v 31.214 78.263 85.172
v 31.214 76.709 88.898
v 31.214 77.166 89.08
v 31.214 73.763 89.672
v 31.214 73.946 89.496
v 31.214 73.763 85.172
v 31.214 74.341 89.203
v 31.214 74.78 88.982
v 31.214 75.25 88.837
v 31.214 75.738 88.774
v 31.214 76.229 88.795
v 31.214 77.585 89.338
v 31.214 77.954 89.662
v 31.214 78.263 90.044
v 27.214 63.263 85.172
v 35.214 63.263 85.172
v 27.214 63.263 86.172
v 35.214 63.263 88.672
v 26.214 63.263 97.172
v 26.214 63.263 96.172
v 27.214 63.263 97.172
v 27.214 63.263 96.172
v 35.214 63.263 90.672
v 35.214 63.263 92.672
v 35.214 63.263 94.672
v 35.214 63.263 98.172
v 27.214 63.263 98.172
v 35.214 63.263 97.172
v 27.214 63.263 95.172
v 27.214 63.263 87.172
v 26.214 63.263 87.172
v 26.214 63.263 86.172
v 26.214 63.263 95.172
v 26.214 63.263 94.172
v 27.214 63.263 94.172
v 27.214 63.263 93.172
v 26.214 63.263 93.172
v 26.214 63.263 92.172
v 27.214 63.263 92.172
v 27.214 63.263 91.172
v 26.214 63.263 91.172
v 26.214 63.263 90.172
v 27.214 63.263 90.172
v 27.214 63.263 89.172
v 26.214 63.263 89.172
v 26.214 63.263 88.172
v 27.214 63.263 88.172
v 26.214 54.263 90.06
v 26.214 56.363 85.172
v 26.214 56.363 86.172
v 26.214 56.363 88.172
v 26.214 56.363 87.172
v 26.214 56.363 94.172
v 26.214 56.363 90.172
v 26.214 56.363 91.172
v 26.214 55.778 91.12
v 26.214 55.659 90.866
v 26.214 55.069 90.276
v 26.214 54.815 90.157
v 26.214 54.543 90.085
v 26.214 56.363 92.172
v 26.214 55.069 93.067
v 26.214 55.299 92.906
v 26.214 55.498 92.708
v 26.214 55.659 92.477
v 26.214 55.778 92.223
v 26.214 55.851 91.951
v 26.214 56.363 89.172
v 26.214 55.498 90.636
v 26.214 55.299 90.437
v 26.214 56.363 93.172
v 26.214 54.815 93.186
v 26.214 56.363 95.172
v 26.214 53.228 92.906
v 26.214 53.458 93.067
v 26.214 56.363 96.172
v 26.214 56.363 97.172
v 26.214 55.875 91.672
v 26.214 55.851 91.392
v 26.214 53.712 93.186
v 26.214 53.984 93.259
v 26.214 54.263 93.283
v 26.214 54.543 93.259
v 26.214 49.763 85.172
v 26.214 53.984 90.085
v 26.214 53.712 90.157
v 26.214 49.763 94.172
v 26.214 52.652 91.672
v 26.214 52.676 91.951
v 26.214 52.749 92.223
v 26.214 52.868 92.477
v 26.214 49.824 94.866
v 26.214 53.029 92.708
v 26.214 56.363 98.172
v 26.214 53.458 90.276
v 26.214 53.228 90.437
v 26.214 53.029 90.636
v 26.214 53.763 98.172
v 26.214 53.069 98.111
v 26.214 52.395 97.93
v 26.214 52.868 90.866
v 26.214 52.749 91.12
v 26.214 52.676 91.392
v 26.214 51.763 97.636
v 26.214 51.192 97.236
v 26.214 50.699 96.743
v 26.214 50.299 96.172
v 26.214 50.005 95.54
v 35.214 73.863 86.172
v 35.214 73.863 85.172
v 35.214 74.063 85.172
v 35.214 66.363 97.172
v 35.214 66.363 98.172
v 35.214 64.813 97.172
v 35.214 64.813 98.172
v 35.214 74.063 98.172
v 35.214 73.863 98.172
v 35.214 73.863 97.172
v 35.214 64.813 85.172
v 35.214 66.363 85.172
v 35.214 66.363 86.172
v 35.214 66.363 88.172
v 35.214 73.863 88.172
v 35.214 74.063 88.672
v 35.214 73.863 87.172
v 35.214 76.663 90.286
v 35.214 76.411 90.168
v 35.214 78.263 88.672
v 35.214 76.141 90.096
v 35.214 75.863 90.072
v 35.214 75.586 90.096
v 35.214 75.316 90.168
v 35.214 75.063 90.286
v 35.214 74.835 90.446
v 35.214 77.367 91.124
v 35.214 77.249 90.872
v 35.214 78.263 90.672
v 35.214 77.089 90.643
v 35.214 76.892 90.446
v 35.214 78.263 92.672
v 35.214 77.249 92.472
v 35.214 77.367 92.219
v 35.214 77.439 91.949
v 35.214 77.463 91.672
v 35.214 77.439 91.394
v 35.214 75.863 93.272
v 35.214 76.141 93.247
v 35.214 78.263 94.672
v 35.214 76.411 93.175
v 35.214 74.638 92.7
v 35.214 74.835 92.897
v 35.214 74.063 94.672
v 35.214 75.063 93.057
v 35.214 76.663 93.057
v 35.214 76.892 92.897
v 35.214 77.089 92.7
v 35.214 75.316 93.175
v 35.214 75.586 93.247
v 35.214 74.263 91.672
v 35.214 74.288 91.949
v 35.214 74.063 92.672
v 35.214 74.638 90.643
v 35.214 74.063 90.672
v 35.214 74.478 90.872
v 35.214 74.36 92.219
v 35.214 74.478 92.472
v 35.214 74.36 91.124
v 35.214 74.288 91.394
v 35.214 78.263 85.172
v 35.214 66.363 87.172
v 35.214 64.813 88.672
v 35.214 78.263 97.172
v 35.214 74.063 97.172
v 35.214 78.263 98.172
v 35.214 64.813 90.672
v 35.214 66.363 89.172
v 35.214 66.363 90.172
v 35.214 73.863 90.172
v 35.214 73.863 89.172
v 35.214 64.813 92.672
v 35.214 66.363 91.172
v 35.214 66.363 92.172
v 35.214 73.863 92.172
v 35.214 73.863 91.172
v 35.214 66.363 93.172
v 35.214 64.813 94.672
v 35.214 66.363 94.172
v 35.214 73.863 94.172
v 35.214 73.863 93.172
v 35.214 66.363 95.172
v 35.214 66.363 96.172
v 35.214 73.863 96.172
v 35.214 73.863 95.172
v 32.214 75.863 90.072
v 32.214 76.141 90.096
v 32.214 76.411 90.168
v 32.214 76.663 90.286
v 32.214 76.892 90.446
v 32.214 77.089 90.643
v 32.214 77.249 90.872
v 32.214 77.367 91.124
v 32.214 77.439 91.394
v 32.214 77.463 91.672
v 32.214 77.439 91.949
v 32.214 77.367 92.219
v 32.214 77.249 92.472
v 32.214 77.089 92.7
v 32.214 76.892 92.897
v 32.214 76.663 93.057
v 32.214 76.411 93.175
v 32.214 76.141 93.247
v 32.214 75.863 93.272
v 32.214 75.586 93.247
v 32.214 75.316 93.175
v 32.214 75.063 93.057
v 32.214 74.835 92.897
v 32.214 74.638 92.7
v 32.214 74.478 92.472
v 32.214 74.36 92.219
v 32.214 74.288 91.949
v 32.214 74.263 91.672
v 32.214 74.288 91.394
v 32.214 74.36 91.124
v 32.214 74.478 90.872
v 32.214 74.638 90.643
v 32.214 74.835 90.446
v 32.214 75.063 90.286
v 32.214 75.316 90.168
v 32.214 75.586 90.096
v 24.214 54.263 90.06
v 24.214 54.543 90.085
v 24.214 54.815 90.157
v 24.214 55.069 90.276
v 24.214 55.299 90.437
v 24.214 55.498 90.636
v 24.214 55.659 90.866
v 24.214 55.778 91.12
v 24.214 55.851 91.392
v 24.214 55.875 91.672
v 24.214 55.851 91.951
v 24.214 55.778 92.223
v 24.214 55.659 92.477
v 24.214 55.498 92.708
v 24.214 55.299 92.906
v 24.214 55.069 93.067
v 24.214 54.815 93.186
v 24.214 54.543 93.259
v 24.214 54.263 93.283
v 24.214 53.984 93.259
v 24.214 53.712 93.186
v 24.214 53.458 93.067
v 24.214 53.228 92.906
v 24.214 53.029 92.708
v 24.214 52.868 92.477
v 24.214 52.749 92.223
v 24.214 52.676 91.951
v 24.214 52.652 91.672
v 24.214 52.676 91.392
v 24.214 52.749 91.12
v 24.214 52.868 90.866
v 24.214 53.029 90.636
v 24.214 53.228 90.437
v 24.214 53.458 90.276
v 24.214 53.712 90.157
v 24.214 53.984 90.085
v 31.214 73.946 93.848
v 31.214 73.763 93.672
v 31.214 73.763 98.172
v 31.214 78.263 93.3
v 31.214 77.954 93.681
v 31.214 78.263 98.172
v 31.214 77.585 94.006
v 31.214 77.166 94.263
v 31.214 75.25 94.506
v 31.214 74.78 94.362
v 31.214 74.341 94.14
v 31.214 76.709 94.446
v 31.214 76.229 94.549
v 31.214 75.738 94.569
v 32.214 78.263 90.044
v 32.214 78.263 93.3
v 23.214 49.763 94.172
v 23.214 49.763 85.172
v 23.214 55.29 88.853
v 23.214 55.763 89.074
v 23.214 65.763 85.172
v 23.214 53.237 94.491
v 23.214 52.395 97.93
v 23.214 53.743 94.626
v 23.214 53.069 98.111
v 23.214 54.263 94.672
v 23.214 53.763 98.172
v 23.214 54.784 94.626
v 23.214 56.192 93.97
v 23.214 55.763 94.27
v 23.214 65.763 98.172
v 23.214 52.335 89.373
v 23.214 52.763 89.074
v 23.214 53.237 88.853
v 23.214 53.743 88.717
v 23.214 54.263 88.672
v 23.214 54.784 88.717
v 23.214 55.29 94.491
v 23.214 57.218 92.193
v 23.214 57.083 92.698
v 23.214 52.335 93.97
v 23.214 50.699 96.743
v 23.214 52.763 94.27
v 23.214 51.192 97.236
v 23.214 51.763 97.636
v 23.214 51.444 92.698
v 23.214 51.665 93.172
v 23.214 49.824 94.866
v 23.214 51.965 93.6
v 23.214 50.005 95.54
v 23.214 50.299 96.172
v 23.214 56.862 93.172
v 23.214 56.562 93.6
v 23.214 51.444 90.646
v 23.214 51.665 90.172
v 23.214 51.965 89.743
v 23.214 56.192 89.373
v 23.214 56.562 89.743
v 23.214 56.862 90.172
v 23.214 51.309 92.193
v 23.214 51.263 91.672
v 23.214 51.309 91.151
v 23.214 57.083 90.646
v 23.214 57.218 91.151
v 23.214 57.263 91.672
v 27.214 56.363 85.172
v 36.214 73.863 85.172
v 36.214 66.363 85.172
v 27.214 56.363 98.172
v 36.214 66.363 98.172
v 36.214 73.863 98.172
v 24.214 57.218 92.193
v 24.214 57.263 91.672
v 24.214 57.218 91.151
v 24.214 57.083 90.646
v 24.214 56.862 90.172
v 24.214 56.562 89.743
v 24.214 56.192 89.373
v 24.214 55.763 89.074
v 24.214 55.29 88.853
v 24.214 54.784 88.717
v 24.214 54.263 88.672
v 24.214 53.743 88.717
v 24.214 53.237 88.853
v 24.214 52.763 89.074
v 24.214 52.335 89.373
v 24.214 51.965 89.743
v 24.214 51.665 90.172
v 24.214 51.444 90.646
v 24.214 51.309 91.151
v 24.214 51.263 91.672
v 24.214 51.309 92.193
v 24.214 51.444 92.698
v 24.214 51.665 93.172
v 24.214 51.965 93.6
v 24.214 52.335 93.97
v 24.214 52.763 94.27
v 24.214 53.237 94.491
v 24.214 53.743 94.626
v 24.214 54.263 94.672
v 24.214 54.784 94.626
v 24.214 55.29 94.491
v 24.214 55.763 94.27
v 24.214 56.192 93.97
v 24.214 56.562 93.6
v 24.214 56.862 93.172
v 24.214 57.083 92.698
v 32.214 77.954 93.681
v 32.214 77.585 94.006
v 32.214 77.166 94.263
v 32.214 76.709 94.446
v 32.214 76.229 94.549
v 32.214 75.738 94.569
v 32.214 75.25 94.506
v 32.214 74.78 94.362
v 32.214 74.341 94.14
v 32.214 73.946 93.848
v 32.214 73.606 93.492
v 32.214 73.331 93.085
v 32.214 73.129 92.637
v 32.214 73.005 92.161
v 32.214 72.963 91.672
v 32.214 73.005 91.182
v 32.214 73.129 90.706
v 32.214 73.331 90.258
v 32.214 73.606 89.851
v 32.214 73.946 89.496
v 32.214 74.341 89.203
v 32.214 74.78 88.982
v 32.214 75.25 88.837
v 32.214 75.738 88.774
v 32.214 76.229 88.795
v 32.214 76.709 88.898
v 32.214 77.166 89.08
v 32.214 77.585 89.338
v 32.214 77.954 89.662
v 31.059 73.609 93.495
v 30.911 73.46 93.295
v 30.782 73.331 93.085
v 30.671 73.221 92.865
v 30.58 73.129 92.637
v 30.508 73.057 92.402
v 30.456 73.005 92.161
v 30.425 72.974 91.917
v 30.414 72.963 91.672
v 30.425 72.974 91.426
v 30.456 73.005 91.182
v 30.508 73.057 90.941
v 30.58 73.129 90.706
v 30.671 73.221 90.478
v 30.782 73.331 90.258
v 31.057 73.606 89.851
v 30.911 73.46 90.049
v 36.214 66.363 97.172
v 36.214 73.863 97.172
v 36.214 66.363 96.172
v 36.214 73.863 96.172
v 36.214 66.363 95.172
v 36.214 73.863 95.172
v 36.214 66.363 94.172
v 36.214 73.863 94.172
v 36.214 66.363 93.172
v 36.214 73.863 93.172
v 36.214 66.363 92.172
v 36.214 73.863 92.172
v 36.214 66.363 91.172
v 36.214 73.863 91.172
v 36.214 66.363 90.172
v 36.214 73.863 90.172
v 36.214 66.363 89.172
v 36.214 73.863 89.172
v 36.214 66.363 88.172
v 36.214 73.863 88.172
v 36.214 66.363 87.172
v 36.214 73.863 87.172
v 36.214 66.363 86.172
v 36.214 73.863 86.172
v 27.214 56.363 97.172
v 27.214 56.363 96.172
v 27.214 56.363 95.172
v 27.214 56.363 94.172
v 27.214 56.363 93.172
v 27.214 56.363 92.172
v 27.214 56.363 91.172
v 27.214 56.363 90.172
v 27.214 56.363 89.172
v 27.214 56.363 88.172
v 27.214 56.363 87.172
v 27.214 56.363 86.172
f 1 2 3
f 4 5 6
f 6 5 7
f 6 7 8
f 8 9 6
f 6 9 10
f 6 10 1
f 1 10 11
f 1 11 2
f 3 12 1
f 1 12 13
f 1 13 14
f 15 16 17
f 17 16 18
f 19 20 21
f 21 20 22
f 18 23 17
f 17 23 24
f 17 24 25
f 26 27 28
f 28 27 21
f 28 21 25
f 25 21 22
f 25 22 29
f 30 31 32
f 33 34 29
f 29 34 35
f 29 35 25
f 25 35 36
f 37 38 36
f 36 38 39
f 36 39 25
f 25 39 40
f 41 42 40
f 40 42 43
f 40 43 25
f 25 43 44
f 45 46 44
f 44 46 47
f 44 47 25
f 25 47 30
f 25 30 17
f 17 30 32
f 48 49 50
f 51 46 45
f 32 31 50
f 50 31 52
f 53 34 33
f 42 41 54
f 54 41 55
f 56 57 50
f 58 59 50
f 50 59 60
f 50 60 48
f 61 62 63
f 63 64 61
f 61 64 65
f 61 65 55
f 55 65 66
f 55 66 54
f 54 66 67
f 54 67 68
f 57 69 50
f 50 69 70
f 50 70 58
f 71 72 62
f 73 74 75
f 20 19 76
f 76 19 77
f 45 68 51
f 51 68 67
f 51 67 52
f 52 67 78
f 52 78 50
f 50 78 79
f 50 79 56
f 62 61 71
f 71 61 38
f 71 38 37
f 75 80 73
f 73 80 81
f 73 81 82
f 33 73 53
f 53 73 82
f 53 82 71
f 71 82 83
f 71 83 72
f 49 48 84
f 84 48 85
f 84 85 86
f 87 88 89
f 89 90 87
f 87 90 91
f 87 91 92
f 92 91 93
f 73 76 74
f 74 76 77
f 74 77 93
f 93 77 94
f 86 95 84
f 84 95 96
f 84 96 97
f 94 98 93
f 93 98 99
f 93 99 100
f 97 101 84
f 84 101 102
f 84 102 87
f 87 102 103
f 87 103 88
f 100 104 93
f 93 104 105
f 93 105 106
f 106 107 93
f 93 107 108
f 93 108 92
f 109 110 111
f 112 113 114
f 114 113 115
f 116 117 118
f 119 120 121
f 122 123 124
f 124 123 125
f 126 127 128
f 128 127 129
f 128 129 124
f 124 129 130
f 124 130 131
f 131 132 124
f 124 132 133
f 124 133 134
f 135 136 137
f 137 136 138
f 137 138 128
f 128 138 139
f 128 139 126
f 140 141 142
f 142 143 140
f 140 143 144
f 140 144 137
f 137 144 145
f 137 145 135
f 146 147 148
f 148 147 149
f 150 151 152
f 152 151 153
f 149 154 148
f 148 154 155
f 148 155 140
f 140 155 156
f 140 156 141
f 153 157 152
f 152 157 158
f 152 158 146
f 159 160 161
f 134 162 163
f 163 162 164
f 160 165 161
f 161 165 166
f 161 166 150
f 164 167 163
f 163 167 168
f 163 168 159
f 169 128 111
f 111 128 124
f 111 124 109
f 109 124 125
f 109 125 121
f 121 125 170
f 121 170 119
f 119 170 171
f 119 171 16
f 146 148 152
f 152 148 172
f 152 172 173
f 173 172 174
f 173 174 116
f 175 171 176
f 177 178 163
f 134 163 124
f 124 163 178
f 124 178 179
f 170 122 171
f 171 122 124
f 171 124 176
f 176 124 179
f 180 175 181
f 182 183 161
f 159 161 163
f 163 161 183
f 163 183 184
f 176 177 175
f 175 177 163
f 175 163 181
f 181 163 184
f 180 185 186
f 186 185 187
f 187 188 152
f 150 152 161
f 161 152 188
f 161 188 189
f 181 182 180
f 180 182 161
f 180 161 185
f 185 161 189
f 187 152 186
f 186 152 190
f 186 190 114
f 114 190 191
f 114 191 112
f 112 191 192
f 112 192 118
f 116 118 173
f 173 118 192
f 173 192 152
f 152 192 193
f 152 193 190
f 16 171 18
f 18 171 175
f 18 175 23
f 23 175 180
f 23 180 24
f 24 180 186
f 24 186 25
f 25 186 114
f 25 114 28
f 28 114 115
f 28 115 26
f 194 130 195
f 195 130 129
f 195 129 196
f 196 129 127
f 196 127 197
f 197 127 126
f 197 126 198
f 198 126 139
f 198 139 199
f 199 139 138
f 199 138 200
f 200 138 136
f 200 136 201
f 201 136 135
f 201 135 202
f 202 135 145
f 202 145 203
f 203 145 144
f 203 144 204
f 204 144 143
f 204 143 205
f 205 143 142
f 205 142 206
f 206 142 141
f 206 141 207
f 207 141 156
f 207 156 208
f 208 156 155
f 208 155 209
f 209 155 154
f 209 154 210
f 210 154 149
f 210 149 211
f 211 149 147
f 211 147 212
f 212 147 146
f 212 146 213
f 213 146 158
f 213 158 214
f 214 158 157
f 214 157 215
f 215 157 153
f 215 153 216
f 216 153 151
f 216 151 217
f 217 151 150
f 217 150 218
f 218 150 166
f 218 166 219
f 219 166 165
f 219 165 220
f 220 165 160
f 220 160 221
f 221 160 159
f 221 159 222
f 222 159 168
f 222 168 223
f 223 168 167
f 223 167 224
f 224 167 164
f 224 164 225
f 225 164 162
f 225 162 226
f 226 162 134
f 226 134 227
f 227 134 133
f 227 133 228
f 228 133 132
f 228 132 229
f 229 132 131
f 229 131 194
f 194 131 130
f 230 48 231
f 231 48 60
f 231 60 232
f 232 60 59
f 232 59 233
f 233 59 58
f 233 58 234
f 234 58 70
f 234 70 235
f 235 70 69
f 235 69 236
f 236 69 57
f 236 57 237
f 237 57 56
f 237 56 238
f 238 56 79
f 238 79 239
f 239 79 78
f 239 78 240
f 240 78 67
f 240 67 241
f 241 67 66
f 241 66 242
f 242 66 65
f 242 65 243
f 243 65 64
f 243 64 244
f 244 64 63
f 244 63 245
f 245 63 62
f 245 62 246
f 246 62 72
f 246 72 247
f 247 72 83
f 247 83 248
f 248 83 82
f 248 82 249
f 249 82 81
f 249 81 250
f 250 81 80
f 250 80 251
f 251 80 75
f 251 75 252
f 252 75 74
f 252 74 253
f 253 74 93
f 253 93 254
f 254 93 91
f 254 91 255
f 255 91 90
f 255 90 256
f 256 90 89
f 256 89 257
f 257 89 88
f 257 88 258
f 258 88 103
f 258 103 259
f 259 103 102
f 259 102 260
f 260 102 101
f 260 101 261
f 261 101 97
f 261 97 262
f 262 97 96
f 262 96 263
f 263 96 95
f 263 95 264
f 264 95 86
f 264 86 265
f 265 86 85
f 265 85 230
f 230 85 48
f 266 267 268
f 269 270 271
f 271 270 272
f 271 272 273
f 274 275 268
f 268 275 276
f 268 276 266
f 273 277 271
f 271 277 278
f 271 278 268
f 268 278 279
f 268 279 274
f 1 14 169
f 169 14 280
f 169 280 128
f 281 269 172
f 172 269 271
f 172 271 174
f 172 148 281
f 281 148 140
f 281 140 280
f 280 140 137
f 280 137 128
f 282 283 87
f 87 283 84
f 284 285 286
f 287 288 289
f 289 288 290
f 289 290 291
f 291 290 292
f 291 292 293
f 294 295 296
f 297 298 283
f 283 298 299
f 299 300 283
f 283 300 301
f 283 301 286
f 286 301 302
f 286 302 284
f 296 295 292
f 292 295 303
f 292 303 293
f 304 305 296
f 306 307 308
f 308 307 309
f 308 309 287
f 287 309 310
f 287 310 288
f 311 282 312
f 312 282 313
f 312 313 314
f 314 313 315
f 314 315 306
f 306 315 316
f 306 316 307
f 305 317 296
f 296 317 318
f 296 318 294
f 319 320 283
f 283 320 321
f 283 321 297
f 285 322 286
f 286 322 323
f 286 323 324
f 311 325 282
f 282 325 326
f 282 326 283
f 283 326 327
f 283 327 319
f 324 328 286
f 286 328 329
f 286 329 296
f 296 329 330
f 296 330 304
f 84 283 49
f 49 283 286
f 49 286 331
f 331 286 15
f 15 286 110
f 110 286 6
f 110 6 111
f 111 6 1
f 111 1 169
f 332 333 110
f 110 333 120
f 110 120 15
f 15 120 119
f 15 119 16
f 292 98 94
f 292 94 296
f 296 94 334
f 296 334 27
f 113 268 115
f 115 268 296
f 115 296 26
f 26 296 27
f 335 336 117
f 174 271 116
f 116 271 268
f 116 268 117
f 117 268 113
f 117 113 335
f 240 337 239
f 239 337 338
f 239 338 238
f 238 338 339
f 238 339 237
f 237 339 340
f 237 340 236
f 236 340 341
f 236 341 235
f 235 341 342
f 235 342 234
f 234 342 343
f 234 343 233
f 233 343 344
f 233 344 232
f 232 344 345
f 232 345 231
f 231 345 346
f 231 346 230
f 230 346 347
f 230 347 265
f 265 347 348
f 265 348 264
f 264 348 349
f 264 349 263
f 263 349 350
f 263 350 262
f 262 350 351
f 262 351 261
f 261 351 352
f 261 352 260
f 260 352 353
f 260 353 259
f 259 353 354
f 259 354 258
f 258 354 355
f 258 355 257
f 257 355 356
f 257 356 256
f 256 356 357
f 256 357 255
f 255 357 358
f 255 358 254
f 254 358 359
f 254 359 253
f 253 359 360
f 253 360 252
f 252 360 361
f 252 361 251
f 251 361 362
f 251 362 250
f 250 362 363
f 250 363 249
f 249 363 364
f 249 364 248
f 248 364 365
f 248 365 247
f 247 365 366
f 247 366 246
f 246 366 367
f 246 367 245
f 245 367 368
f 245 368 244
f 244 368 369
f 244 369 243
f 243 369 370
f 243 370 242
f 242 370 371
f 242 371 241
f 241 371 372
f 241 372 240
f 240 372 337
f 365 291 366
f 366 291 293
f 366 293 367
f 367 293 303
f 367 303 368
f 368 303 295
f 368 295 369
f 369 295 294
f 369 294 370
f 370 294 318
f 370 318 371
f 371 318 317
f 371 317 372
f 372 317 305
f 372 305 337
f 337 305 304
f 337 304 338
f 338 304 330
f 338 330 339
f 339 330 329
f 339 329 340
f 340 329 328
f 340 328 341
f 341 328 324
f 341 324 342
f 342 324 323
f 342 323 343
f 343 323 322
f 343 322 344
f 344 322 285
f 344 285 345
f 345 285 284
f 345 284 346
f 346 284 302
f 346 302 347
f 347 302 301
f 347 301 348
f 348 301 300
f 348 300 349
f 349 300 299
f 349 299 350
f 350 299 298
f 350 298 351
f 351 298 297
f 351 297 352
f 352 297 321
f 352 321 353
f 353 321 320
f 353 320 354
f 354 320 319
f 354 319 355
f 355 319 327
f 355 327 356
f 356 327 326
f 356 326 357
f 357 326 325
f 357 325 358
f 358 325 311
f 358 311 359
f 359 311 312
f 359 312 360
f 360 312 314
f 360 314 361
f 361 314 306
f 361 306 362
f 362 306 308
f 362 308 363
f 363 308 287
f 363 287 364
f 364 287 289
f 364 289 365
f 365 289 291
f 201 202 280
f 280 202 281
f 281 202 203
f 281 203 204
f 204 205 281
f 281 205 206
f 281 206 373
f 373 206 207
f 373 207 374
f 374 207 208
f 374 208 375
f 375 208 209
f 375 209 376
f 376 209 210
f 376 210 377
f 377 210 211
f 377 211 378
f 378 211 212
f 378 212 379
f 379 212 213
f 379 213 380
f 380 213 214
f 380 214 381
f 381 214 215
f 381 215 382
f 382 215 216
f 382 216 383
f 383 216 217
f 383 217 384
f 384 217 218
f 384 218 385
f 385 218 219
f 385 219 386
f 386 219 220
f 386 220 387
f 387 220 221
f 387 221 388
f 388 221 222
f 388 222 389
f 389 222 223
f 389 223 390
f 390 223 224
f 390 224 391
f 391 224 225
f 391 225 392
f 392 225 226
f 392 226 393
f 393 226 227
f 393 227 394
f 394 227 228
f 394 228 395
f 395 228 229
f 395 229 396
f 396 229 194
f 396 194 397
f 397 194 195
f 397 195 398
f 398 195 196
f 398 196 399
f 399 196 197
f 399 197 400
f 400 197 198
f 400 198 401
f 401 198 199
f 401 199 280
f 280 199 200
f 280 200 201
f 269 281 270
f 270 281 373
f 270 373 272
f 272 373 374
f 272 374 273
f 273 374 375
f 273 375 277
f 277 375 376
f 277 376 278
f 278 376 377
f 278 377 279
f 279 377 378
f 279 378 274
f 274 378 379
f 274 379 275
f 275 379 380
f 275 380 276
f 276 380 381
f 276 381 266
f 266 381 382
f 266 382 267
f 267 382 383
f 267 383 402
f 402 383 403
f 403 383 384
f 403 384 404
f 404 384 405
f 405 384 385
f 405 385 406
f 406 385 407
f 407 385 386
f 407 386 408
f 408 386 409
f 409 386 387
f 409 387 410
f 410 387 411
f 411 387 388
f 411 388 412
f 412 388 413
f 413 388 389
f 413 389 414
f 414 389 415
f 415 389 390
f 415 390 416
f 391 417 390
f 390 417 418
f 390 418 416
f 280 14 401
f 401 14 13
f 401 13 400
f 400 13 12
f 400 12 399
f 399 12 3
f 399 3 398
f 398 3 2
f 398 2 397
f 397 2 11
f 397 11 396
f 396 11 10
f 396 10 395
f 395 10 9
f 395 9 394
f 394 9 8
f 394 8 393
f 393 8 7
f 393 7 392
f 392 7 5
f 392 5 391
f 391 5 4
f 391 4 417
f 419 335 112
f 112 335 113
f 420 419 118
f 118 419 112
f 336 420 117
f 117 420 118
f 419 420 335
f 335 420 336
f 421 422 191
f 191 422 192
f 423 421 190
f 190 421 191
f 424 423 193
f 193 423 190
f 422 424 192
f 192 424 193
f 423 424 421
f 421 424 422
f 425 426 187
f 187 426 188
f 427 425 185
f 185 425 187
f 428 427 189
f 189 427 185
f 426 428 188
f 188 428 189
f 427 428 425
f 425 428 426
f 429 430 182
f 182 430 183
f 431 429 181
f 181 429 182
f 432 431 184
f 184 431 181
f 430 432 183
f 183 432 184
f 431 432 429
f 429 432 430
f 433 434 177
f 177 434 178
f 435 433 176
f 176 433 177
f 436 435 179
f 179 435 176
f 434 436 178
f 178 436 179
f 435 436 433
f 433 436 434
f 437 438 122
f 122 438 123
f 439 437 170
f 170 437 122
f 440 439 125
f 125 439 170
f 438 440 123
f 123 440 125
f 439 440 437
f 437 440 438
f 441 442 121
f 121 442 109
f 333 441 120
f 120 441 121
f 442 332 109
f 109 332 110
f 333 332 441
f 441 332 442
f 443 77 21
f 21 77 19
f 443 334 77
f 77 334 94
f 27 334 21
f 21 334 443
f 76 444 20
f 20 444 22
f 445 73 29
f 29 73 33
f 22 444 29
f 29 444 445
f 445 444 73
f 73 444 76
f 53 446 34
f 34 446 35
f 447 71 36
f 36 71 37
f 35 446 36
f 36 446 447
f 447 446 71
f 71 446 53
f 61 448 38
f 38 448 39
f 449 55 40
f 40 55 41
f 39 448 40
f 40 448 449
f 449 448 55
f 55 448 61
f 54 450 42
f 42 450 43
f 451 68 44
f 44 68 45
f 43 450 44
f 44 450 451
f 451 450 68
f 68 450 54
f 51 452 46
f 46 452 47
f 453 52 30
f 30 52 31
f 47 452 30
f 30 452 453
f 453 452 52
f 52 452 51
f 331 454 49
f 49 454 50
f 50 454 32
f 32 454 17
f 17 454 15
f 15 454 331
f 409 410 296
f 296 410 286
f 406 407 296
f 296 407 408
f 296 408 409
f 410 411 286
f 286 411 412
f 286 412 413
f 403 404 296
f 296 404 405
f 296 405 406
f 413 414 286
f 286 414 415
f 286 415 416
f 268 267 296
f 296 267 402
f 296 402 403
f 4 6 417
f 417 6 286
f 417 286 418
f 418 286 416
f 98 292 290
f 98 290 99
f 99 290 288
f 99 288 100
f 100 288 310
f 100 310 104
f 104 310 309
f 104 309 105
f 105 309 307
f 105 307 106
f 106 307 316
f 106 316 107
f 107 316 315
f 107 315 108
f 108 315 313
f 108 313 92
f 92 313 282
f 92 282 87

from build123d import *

# Parameters (mm, degrees)
BOSS_EXTRUDE1_DEPTH = 13
SKETCH2_R           = 1.6
SKETCH2_R_2         = 1.611537585
CUT_EXTRUDE1_DEPTH  = 20
SKETCH3_R           = 3
CUT_EXTRUDE2_DEPTH  = 1
SKETCH4_R           = 2.9
CUT_EXTRUDE3_DEPTH  = 1
SKETCH5_W           = 1
SKETCH5_H           = 7.5
BOSS_EXTRUDE2_DEPTH = 1
LPATTERN1_COUNT     = 7
LPATTERN1_PITCH     = 2
SKETCH6_W           = 1
SKETCH6_H           = 7.5
BOSS_EXTRUDE3_DEPTH = 1
LPATTERN2_COUNT     = 7
LPATTERN2_PITCH     = 2
CHAMFER1_SIZE       = 10
FILLET1_R           = 4


with BuildPart() as part:
    # Sketch1 → Boss-Extrude1 (new body)
    with BuildSketch(Plane.XY.offset(98.171636097)):
        Polygon((31.214370899, 78.263460463), (35.214370899, 78.263460463), (35.214370899, 66.863460463), (35.214370899, 63.263460463), (26.214370899, 63.263460463), (26.214370899, 49.763460463), (23.214370899, 49.763460463), (23.214370899, 63.263460463), (23.214370899, 63.763460463), (31.214370899, 63.763460463), align=None)
    extrude(amount=-BOSS_EXTRUDE1_DEPTH)

    # Sketch2 → Cut-Extrude1 (cut)
    with BuildSketch(Plane(origin=(35.214370899, 0, 0), x_dir=(0, 0, -1), z_dir=(1, 0, 0))):
        with Locations((-91.671636097, 75.863460463)):
            Circle(SKETCH2_R)
        with Locations((-91.671636097, 54.263460463)):
            Circle(SKETCH2_R_2)
    extrude(amount=-CUT_EXTRUDE1_DEPTH, mode=Mode.SUBTRACT)

    # Sketch3 → Cut-Extrude2 (cut)
    with BuildSketch(Plane.ZY.offset(-23.214370899)):
        with Locations((91.671636097, 54.263460463)):
            Circle(SKETCH3_R)
    extrude(amount=-CUT_EXTRUDE2_DEPTH, mode=Mode.SUBTRACT)

    # Sketch4 → Cut-Extrude3 (cut)
    with BuildSketch(Plane.ZY.offset(-31.214370899)):
        with Locations((91.671636097, 75.863460463)):
            Circle(SKETCH4_R)
    extrude(amount=-CUT_EXTRUDE3_DEPTH, mode=Mode.SUBTRACT)

    # Sketch5 → Boss-Extrude2 (add)
    with BuildSketch(Plane(origin=(35.214370899, 0, 0), x_dir=(0, 0, -1), z_dir=(1, 0, 0))):
        with Locations((-97.671636097, 70.113460463)):
            Rectangle(SKETCH5_W, SKETCH5_H)
    boss_extrude2 = extrude(amount=BOSS_EXTRUDE2_DEPTH)

    # LPattern1: Boss-Extrude2 ×7
    with Locations(*[(0, 0, -i * LPATTERN1_PITCH) for i in range(1, LPATTERN1_COUNT)]):
        add(boss_extrude2)

    # Sketch6 → Boss-Extrude3 (add)
    with BuildSketch(Plane(origin=(26.214370899, 0, 0), x_dir=(0, 0, -1), z_dir=(1, 0, 0))):
        with Locations((-97.671636097, 60.113460463)):
            Rectangle(SKETCH6_W, SKETCH6_H)
    boss_extrude3 = extrude(amount=BOSS_EXTRUDE3_DEPTH)

    # LPattern2: Boss-Extrude3 ×7
    with Locations(*[(0, 0, -i * LPATTERN2_PITCH) for i in range(1, LPATTERN2_COUNT)]):
        add(boss_extrude3)

    # Chamfer1
    # the kernel refuses this chamfer: 10 mm, written as the material it adds along each edge
    with BuildSketch(Plane(origin=(31.214370899, 63.763460463, 98.171636097), x_dir=(0.027495876610585647, 0.9996219169112968, 0), z_dir=(0, 0, -1))) as chamfer1_piece_1_section:
        Polygon((CHAMFER1_SIZE * 0.999621916911, -CHAMFER1_SIZE * 0.0274958766106), (-CHAMFER1_SIZE * 0.0274958766106, -CHAMFER1_SIZE * 0.999621916911), (0, 0), align=None)
    chamfer1_piece_1 = extrude(amount=13, mode=Mode.PRIVATE)
    chamfer1_piece_1 = chamfer1_piece_1 - Plane(origin=(28.210743814, 75.863460463, 91.671636097), x_dir=(0, 0, 1), z_dir=(-1, 0, 0)) * Cylinder(2.9, 66, mode=Mode.PRIVATE)
    chamfer1_piece_1 = split(chamfer1_piece_1, bisect_by=Plane(origin=(23.214370899, 67.201513325, 91.671636099), z_dir=(1, 0, 0)), keep=Keep.TOP, mode=Mode.PRIVATE)
    add(chamfer1_piece_1)

    # Fillet1
    fillet1_edges = [part.edges().sort_by_distance(p)[0] for p in [
        (24.714370899, 49.763460463, 98.171636097),
    ]]
    fillet(fillet1_edges, radius=FILLET1_R)


solid = part.part
